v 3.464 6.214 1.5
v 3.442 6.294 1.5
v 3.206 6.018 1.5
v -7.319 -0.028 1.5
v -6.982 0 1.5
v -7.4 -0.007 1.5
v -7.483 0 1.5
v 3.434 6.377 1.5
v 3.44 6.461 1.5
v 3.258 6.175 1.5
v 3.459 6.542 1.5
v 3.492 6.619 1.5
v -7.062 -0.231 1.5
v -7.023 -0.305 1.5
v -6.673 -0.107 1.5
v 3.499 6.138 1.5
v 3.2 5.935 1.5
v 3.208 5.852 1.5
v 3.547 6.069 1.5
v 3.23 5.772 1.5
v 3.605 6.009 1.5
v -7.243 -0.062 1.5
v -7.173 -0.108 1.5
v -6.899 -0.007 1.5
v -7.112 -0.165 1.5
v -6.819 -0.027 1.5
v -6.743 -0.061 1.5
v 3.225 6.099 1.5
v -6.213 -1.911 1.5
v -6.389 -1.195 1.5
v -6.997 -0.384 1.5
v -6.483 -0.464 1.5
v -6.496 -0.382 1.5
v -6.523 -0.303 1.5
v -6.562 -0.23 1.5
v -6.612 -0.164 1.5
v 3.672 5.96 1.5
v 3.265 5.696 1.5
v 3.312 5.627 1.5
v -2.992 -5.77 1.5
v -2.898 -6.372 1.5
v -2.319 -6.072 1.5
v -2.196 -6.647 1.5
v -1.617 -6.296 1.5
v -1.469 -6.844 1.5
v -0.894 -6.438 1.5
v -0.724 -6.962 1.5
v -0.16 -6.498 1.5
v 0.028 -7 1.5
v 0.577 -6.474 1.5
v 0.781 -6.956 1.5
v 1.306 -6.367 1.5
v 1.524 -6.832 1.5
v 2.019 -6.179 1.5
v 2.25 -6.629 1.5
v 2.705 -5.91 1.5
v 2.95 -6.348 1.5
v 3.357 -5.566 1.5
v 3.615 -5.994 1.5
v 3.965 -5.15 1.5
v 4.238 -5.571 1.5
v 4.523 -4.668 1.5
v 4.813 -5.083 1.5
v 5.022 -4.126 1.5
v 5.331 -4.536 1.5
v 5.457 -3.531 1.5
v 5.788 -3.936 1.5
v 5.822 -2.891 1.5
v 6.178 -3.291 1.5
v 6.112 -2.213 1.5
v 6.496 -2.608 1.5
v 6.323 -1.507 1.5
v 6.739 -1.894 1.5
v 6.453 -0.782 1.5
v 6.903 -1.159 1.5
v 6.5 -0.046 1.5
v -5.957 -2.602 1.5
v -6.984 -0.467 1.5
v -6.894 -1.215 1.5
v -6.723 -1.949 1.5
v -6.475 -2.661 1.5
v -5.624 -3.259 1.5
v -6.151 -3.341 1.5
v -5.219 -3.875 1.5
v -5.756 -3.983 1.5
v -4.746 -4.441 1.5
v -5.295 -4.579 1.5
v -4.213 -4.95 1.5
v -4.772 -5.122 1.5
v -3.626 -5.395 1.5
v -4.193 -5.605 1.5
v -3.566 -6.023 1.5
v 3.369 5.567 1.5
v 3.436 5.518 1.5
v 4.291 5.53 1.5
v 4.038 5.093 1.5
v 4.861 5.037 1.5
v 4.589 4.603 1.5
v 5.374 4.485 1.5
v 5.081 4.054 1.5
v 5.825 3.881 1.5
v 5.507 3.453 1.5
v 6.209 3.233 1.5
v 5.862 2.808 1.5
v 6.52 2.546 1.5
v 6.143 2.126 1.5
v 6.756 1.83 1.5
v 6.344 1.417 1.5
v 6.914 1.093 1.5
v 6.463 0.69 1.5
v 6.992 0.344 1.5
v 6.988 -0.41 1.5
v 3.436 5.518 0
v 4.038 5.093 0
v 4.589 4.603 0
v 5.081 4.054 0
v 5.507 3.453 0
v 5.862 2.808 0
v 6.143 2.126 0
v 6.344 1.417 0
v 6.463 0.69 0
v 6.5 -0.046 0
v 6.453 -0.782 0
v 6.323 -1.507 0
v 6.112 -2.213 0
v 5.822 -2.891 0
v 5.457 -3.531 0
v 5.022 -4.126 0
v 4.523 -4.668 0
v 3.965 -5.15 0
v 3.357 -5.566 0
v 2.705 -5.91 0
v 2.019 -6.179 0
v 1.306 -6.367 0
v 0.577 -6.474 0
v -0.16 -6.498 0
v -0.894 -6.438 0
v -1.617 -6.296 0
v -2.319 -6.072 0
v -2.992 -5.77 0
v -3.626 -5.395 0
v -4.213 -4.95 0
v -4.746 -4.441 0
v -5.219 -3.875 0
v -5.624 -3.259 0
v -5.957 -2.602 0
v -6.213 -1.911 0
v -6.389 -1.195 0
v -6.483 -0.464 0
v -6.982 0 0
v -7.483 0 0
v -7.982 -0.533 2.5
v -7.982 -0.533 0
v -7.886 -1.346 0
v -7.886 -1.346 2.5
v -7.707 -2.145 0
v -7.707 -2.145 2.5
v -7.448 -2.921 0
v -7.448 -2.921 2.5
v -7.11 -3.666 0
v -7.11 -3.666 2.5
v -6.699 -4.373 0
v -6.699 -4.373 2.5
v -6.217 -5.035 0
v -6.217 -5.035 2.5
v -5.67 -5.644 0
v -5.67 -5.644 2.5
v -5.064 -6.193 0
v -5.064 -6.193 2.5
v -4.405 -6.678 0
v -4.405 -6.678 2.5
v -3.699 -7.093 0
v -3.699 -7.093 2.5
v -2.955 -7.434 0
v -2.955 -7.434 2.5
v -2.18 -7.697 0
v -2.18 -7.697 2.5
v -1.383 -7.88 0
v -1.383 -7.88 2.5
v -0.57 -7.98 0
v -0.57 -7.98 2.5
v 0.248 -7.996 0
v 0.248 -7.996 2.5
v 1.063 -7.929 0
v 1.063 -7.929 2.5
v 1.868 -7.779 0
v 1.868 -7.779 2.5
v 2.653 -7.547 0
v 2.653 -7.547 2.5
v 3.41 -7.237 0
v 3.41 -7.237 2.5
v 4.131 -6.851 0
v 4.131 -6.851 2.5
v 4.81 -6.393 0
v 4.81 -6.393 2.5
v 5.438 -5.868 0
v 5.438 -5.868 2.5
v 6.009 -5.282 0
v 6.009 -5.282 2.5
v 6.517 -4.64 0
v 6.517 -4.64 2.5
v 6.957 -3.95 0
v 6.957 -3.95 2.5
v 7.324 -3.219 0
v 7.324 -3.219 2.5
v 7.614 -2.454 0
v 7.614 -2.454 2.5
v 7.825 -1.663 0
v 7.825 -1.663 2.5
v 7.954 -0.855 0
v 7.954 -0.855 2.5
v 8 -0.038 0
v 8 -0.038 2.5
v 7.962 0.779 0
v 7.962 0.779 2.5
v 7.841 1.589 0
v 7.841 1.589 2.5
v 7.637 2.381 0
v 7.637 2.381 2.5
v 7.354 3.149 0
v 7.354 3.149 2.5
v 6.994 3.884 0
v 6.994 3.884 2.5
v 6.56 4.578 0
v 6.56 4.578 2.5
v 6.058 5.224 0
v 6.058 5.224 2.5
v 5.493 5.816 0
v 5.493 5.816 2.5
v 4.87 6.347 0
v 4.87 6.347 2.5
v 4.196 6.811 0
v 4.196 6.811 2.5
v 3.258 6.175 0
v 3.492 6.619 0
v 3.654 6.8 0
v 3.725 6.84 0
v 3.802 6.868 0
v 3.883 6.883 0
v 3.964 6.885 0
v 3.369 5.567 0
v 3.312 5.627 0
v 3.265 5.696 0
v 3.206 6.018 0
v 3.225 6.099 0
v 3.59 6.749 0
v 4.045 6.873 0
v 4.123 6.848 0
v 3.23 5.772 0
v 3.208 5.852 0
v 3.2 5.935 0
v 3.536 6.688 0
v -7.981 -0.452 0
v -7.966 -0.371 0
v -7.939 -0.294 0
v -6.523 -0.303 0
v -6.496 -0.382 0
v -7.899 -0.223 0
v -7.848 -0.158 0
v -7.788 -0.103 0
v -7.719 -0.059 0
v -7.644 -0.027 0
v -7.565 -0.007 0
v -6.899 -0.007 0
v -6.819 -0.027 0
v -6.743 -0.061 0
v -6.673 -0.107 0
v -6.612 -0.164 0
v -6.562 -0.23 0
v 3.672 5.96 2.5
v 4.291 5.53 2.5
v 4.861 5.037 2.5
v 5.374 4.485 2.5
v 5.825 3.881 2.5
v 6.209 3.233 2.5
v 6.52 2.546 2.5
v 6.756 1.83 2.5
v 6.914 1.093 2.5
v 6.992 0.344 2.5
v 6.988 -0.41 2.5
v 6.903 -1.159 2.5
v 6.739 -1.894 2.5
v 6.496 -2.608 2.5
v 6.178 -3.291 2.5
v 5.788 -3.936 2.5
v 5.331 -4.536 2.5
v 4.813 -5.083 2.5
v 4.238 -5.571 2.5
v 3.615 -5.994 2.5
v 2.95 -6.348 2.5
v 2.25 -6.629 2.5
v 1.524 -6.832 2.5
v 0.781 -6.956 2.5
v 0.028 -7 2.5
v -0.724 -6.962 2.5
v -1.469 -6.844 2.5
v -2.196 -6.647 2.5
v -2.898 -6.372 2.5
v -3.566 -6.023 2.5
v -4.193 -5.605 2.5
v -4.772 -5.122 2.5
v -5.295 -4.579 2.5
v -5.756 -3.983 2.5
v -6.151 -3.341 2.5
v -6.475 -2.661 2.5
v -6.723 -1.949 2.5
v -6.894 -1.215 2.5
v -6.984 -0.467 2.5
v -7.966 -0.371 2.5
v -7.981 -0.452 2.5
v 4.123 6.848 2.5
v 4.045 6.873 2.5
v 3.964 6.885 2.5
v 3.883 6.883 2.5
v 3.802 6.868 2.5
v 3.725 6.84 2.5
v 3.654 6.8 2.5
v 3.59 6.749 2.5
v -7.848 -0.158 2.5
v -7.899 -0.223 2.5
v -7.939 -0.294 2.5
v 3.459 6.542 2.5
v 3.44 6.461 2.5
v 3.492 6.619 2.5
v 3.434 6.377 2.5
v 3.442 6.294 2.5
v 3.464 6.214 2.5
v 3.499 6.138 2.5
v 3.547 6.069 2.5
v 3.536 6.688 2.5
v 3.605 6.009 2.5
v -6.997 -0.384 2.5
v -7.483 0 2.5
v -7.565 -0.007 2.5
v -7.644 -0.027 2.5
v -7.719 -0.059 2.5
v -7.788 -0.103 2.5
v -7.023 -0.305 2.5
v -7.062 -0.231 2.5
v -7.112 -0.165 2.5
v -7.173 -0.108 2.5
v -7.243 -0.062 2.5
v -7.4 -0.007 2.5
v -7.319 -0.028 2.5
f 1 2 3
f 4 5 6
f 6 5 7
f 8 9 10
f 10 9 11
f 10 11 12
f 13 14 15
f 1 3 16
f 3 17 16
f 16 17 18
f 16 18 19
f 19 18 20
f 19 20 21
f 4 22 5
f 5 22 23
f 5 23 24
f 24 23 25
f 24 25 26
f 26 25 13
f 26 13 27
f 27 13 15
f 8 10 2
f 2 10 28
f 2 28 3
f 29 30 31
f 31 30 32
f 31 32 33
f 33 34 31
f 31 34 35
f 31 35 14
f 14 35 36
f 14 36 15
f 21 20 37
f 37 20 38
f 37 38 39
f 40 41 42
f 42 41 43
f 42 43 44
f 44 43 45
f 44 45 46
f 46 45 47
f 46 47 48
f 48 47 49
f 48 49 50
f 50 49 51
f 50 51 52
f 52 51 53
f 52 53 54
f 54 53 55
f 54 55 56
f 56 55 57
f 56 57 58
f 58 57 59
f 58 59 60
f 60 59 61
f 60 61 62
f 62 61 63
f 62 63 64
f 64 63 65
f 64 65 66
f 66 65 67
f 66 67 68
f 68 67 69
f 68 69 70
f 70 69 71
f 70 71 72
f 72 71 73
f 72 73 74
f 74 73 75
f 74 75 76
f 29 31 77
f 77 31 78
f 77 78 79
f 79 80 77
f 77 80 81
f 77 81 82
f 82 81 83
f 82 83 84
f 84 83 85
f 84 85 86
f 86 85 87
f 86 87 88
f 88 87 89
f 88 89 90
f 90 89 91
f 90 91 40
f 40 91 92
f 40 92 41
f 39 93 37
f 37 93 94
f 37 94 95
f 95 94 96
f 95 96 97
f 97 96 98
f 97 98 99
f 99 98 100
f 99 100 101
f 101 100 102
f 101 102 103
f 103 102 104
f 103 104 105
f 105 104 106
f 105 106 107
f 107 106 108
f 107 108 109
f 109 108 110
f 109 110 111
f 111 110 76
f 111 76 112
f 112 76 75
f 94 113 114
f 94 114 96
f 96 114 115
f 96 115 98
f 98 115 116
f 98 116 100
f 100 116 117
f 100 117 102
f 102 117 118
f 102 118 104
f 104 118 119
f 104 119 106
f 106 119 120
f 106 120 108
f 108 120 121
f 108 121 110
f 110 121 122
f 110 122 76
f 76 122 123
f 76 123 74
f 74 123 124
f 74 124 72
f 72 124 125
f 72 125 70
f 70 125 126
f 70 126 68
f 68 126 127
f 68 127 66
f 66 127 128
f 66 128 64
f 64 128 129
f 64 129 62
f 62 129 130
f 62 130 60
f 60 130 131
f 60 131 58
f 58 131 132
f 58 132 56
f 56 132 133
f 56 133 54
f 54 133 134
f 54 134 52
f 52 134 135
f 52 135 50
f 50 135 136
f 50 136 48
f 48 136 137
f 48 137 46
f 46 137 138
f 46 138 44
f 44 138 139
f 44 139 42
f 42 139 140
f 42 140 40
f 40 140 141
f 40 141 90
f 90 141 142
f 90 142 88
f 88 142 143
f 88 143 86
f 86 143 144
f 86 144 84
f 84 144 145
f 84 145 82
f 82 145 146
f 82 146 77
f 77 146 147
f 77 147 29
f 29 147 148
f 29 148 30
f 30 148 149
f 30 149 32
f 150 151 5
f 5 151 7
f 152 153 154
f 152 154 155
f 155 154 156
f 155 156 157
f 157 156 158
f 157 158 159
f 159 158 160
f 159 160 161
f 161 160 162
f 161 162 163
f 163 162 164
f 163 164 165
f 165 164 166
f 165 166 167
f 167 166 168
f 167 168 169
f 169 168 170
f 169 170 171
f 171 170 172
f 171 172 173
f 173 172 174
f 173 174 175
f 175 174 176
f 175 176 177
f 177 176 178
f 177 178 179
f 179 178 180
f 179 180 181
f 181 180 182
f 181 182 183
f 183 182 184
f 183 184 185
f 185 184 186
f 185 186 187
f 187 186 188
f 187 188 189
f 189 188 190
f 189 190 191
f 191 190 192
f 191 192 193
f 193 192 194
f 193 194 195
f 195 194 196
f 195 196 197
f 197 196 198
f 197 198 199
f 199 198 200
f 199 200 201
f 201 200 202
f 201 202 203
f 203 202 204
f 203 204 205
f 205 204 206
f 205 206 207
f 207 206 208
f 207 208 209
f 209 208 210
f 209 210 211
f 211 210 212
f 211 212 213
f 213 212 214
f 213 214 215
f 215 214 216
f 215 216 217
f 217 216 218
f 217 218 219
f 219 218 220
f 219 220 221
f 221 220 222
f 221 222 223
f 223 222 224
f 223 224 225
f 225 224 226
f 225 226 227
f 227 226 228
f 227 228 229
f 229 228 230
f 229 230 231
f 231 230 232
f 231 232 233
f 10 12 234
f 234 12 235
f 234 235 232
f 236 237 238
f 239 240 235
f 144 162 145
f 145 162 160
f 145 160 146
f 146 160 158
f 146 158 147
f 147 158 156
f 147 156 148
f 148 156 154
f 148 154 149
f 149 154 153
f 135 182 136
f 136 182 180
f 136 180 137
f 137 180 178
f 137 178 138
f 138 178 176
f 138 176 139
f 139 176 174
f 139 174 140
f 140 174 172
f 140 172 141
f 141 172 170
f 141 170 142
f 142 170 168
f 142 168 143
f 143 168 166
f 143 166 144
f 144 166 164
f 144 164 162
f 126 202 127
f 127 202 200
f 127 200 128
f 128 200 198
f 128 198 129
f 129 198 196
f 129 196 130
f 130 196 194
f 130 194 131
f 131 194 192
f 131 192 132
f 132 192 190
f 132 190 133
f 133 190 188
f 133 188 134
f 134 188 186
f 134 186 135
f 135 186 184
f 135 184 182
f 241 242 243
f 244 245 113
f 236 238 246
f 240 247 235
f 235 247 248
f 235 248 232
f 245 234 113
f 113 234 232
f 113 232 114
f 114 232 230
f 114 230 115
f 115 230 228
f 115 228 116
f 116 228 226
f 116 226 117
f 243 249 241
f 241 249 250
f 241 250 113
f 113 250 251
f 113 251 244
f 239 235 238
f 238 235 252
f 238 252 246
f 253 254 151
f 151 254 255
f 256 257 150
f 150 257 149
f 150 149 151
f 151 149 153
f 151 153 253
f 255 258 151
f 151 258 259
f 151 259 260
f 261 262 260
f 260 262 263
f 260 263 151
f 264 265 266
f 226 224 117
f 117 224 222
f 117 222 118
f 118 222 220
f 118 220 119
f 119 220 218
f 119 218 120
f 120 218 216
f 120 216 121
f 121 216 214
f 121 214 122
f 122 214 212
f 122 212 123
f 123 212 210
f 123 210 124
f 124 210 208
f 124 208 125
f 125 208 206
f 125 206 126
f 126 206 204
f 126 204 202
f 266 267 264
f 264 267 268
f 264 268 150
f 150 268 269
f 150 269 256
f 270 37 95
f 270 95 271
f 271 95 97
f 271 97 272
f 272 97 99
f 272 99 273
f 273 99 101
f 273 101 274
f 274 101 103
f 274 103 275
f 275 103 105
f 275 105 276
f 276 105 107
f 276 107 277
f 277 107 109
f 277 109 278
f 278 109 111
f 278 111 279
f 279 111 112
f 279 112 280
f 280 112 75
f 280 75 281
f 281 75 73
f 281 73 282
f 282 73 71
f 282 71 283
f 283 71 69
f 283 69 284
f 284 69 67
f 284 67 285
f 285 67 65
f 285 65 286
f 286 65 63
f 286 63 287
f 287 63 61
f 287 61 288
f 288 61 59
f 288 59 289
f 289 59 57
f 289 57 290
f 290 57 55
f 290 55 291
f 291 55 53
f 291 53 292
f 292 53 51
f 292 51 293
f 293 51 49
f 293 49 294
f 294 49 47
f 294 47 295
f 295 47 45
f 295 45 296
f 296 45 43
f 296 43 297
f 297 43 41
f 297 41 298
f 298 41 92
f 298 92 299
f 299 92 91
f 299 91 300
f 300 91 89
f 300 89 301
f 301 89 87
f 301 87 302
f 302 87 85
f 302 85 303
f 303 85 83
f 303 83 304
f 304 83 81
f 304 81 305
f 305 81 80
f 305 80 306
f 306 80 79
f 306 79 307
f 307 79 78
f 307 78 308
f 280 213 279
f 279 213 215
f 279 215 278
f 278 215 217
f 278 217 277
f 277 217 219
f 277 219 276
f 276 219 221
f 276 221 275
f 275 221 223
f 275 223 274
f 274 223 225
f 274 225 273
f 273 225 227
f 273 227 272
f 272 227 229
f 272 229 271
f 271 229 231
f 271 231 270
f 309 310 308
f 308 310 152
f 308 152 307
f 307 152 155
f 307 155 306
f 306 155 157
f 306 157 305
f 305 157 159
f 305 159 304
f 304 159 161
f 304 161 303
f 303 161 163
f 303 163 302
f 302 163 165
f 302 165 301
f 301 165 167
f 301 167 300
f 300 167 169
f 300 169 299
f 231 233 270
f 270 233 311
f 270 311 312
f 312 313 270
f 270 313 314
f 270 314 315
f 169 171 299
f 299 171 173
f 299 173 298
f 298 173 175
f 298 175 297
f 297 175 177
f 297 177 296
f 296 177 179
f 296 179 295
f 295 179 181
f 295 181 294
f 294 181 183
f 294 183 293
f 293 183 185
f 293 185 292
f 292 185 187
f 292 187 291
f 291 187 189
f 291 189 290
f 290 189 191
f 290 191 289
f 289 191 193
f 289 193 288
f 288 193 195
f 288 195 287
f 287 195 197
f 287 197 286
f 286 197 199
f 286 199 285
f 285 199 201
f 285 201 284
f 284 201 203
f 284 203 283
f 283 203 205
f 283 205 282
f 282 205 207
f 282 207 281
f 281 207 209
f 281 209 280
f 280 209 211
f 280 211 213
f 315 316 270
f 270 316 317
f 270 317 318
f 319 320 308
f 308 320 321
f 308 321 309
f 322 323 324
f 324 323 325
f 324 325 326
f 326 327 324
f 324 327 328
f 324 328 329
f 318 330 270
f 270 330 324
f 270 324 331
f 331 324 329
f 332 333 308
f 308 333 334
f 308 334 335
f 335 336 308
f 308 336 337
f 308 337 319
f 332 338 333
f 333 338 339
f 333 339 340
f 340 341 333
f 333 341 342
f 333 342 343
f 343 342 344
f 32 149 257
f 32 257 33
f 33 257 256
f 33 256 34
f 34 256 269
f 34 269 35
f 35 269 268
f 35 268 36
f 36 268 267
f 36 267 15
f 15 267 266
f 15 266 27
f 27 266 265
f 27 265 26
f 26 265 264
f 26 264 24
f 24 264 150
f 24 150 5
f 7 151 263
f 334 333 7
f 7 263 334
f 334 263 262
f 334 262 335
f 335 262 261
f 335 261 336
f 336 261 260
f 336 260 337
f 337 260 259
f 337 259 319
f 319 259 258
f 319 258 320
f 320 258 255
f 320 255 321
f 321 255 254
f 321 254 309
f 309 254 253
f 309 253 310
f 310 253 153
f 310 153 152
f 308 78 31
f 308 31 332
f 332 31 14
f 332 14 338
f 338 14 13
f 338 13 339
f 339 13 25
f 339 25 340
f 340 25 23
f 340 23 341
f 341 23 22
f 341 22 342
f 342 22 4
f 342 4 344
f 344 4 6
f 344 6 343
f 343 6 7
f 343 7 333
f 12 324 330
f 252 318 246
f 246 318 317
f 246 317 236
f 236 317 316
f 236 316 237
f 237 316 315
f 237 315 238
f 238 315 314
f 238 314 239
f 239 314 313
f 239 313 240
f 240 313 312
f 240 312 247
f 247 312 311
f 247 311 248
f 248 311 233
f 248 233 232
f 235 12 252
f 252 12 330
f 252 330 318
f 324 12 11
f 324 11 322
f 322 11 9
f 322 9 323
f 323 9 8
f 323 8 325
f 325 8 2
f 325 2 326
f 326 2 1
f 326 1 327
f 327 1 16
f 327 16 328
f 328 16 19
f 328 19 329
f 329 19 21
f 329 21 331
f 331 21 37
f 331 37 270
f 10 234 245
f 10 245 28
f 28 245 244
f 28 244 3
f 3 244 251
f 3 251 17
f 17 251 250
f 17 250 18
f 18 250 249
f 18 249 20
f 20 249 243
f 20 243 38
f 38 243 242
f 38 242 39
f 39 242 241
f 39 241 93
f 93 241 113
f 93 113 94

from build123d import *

# Parameters (mm, degrees)
BOSS_EXTRUDE1_DEPTH = 1.5
BOSS_EXTRUDE2_DEPTH = 1
FILLET1_R           = 0.5


with BuildPart() as part:
    # Sketch1 → Boss-Extrude1 (new body)
    with BuildSketch(Plane.XY):
        with BuildLine():
            Line((3.7329056464785526, 7.075691869668192), (3.032985837763823, 5.748999644105406))
            ThreePointArc((3.032985837763823, 5.748999644105406), (3.3567537930666855, -5.566166002980186), (-6.5, 0))
            Line((-6.5, 0), (-8, 9.8e-16))
            ThreePointArc((-8, 9.8e-16), (4.13138928377438, -6.850665849821768), (3.7329056464785526, 7.075691869668192))
        make_face()
    extrude(amount=BOSS_EXTRUDE1_DEPTH)

    # Sketch2 → Boss-Extrude2 (add)
    with BuildSketch(Plane.XY.offset(1.5)):
        with BuildLine():
            Line((3.7329056464785526, 7.075691869668192), (3.266292440668733, 6.191230385959669))
            ThreePointArc((3.266292440668733, 6.191230385959669), (3.6149656233025835, -5.994332618594048), (-7, 0))
            Line((-7, 0), (-8, 9.8e-16))
            ThreePointArc((-8, 9.8e-16), (4.13138928377438, -6.850665849821768), (3.7329056464785526, 7.075691869668192))
        make_face()
    extrude(amount=BOSS_EXTRUDE2_DEPTH)

    # Fillet1
    fillet1_edges = [part.edges().sort_by_distance(p)[0] for p in [
        (-6.5, -2.96e-15, 0.75),
        (-7, -3.17e-15, 2),
        (-8, 9.8e-16, 1.25),
        (3.2662924406687326, 6.191230385959669, 2),
        (3.032985837763823, 5.748999644105407, 0.75),
        (3.7329056464785557, 7.075691869668191, 1.25),
    ]]
    fillet(fillet1_edges, radius=FILLET1_R - 0.0001)  # a hair under: the kernel refuses the full size


solid = part.part
